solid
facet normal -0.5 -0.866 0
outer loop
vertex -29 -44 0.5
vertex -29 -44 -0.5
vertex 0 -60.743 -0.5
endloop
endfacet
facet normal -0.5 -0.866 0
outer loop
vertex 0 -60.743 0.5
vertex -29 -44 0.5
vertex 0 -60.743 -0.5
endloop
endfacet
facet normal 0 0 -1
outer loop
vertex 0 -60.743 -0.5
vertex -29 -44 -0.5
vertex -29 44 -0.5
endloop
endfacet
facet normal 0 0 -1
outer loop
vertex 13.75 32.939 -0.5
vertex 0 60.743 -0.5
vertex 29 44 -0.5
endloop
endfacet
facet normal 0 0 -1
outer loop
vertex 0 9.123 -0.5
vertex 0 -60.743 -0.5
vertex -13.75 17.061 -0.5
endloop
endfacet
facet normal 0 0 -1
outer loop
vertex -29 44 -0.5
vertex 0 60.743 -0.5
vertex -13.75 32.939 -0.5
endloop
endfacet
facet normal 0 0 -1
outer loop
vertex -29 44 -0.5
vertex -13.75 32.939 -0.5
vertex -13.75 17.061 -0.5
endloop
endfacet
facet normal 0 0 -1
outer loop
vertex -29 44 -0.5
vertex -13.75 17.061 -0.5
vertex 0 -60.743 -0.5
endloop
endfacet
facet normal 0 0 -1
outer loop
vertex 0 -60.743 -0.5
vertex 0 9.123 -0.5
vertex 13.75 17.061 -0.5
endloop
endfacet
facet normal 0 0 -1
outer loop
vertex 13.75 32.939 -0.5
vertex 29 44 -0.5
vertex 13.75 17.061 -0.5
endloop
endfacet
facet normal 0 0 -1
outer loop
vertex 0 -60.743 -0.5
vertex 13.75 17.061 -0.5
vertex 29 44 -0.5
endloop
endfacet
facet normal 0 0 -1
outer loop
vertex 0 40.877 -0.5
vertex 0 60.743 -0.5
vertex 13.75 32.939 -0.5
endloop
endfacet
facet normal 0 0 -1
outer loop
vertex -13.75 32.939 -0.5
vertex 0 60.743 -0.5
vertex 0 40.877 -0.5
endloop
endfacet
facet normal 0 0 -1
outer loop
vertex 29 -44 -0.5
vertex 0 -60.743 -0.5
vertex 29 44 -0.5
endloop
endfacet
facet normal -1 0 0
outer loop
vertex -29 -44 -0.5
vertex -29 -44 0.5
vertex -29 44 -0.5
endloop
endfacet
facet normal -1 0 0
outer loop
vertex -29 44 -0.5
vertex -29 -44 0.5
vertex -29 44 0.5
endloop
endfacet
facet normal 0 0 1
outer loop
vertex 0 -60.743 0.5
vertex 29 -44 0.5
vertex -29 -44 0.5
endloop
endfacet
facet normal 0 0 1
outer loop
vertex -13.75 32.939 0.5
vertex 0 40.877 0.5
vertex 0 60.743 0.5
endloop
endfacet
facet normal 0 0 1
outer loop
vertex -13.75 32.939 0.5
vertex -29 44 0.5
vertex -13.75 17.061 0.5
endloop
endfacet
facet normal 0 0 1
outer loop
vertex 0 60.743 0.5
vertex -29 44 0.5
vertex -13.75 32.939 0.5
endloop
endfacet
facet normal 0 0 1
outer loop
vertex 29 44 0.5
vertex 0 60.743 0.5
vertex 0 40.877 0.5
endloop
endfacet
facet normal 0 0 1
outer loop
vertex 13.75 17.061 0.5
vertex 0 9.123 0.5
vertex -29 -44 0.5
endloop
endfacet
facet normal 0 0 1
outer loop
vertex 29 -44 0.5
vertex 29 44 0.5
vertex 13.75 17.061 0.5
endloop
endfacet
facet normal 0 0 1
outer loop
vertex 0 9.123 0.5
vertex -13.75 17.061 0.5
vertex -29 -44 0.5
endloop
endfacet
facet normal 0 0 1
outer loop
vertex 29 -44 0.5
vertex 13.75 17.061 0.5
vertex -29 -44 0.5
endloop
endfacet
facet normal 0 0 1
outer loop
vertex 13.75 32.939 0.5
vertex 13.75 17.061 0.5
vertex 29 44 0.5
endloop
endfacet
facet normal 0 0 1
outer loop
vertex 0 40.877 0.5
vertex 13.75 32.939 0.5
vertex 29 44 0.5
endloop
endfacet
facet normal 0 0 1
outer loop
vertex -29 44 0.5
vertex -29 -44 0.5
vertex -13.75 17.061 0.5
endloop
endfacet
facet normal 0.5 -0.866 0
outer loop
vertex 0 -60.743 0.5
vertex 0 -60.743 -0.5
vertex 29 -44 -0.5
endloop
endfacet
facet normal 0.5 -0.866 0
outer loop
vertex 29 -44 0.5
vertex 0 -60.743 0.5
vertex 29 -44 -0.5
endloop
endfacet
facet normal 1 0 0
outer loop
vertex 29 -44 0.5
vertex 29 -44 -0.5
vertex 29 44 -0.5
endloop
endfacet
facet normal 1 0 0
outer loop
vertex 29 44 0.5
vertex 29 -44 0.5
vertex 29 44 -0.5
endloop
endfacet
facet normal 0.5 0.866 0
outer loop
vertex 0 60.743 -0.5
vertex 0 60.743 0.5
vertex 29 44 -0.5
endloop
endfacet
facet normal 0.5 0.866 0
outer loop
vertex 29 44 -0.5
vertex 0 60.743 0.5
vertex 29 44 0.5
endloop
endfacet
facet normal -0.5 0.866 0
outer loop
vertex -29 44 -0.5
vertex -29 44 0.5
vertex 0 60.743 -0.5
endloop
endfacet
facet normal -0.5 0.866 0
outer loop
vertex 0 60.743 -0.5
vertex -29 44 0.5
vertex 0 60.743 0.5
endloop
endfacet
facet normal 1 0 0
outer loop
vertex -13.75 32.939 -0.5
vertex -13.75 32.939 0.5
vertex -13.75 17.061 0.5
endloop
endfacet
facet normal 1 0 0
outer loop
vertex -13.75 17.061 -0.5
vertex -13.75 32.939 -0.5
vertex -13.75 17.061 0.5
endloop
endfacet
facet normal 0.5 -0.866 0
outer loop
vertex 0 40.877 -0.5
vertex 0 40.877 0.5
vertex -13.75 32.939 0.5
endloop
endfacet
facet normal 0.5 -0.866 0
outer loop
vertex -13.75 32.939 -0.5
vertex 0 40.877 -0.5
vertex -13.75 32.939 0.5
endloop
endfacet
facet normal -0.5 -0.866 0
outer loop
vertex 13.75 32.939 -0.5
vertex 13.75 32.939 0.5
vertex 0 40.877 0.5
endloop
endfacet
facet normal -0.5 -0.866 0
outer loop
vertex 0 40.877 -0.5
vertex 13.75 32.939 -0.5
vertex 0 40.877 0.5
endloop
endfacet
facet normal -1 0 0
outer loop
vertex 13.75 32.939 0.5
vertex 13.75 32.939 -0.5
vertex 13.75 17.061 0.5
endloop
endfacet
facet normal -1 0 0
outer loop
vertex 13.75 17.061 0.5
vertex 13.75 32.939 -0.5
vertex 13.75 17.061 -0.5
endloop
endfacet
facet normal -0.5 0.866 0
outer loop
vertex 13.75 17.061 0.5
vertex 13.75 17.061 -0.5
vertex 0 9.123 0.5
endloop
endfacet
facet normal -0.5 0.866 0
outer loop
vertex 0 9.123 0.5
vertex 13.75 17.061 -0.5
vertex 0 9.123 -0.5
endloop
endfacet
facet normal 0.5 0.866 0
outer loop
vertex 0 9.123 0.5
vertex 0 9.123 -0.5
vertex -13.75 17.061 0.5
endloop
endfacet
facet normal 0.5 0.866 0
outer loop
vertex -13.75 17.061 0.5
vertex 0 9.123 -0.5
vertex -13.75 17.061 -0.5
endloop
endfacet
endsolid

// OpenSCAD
$fn = 100;

// Functions for calculating the half-hexagons
function edge_length(width) = (width/2) / cos(30); // CAH
function point_height(width) = (width/2) * tan(30); // TOA
function leg(width) = edge_length(width) * sqrt(1/2);
function x_offset(width) = (width/2) - leg(width) * cos(15);
function y_offset(width, length) = length/2 - (leg(width) * sin(15));

// Core size variables
scaling = 1;
h = (35) * scaling;
w = (55) * scaling;
l = (85) * scaling;

// Values for interior space
w_pad = 3;
l_pad = 3;

// The lid
h_lid = 1;

function hex_len(width) = 2 * (cos(30) * width);
hex_edge = edge_length(w/2);

translate([0,0,0]){
difference(){
union(){
cube([w+w_pad, l+l_pad, h_lid], center=true); // Center Cube
// The teeth

translate([x_offset(w+w_pad),-y_offset(w+w_pad,l+l_pad),0]){
	rotate([0,0,30]) cube([edge_length(w+w_pad),edge_length(w+w_pad),h_lid], center=true);
}
translate([-x_offset(w+w_pad),-y_offset(w+w_pad,l+l_pad),0]){
	rotate([0,0,-30]) cube([edge_length(w+w_pad),edge_length(w+w_pad),h_lid], center=true);
}

translate([x_offset(w+w_pad),y_offset(w+w_pad,l+l_pad),0]){
	rotate([0,0,-30]) cube([edge_length(w+w_pad),edge_length(w+w_pad),h_lid], center=true);
}
translate([-x_offset(w+w_pad),y_offset(w+w_pad,l+l_pad),0]){
	rotate([0,0,30]) cube([edge_length(w+w_pad),edge_length(w+w_pad),h_lid], center=true);
}}

// The cutout
translate([0,25,0]){
union(){
  rotate([0,0,0]) cube([hex_len(hex_edge),hex_edge,h_lid], center=true);
  rotate([0,0,60]) cube([hex_len(hex_edge),hex_edge,h_lid], center=true);
  rotate([0,0,120]) cube([hex_len(hex_edge),hex_edge,h_lid], center=true);
}
}

}}
